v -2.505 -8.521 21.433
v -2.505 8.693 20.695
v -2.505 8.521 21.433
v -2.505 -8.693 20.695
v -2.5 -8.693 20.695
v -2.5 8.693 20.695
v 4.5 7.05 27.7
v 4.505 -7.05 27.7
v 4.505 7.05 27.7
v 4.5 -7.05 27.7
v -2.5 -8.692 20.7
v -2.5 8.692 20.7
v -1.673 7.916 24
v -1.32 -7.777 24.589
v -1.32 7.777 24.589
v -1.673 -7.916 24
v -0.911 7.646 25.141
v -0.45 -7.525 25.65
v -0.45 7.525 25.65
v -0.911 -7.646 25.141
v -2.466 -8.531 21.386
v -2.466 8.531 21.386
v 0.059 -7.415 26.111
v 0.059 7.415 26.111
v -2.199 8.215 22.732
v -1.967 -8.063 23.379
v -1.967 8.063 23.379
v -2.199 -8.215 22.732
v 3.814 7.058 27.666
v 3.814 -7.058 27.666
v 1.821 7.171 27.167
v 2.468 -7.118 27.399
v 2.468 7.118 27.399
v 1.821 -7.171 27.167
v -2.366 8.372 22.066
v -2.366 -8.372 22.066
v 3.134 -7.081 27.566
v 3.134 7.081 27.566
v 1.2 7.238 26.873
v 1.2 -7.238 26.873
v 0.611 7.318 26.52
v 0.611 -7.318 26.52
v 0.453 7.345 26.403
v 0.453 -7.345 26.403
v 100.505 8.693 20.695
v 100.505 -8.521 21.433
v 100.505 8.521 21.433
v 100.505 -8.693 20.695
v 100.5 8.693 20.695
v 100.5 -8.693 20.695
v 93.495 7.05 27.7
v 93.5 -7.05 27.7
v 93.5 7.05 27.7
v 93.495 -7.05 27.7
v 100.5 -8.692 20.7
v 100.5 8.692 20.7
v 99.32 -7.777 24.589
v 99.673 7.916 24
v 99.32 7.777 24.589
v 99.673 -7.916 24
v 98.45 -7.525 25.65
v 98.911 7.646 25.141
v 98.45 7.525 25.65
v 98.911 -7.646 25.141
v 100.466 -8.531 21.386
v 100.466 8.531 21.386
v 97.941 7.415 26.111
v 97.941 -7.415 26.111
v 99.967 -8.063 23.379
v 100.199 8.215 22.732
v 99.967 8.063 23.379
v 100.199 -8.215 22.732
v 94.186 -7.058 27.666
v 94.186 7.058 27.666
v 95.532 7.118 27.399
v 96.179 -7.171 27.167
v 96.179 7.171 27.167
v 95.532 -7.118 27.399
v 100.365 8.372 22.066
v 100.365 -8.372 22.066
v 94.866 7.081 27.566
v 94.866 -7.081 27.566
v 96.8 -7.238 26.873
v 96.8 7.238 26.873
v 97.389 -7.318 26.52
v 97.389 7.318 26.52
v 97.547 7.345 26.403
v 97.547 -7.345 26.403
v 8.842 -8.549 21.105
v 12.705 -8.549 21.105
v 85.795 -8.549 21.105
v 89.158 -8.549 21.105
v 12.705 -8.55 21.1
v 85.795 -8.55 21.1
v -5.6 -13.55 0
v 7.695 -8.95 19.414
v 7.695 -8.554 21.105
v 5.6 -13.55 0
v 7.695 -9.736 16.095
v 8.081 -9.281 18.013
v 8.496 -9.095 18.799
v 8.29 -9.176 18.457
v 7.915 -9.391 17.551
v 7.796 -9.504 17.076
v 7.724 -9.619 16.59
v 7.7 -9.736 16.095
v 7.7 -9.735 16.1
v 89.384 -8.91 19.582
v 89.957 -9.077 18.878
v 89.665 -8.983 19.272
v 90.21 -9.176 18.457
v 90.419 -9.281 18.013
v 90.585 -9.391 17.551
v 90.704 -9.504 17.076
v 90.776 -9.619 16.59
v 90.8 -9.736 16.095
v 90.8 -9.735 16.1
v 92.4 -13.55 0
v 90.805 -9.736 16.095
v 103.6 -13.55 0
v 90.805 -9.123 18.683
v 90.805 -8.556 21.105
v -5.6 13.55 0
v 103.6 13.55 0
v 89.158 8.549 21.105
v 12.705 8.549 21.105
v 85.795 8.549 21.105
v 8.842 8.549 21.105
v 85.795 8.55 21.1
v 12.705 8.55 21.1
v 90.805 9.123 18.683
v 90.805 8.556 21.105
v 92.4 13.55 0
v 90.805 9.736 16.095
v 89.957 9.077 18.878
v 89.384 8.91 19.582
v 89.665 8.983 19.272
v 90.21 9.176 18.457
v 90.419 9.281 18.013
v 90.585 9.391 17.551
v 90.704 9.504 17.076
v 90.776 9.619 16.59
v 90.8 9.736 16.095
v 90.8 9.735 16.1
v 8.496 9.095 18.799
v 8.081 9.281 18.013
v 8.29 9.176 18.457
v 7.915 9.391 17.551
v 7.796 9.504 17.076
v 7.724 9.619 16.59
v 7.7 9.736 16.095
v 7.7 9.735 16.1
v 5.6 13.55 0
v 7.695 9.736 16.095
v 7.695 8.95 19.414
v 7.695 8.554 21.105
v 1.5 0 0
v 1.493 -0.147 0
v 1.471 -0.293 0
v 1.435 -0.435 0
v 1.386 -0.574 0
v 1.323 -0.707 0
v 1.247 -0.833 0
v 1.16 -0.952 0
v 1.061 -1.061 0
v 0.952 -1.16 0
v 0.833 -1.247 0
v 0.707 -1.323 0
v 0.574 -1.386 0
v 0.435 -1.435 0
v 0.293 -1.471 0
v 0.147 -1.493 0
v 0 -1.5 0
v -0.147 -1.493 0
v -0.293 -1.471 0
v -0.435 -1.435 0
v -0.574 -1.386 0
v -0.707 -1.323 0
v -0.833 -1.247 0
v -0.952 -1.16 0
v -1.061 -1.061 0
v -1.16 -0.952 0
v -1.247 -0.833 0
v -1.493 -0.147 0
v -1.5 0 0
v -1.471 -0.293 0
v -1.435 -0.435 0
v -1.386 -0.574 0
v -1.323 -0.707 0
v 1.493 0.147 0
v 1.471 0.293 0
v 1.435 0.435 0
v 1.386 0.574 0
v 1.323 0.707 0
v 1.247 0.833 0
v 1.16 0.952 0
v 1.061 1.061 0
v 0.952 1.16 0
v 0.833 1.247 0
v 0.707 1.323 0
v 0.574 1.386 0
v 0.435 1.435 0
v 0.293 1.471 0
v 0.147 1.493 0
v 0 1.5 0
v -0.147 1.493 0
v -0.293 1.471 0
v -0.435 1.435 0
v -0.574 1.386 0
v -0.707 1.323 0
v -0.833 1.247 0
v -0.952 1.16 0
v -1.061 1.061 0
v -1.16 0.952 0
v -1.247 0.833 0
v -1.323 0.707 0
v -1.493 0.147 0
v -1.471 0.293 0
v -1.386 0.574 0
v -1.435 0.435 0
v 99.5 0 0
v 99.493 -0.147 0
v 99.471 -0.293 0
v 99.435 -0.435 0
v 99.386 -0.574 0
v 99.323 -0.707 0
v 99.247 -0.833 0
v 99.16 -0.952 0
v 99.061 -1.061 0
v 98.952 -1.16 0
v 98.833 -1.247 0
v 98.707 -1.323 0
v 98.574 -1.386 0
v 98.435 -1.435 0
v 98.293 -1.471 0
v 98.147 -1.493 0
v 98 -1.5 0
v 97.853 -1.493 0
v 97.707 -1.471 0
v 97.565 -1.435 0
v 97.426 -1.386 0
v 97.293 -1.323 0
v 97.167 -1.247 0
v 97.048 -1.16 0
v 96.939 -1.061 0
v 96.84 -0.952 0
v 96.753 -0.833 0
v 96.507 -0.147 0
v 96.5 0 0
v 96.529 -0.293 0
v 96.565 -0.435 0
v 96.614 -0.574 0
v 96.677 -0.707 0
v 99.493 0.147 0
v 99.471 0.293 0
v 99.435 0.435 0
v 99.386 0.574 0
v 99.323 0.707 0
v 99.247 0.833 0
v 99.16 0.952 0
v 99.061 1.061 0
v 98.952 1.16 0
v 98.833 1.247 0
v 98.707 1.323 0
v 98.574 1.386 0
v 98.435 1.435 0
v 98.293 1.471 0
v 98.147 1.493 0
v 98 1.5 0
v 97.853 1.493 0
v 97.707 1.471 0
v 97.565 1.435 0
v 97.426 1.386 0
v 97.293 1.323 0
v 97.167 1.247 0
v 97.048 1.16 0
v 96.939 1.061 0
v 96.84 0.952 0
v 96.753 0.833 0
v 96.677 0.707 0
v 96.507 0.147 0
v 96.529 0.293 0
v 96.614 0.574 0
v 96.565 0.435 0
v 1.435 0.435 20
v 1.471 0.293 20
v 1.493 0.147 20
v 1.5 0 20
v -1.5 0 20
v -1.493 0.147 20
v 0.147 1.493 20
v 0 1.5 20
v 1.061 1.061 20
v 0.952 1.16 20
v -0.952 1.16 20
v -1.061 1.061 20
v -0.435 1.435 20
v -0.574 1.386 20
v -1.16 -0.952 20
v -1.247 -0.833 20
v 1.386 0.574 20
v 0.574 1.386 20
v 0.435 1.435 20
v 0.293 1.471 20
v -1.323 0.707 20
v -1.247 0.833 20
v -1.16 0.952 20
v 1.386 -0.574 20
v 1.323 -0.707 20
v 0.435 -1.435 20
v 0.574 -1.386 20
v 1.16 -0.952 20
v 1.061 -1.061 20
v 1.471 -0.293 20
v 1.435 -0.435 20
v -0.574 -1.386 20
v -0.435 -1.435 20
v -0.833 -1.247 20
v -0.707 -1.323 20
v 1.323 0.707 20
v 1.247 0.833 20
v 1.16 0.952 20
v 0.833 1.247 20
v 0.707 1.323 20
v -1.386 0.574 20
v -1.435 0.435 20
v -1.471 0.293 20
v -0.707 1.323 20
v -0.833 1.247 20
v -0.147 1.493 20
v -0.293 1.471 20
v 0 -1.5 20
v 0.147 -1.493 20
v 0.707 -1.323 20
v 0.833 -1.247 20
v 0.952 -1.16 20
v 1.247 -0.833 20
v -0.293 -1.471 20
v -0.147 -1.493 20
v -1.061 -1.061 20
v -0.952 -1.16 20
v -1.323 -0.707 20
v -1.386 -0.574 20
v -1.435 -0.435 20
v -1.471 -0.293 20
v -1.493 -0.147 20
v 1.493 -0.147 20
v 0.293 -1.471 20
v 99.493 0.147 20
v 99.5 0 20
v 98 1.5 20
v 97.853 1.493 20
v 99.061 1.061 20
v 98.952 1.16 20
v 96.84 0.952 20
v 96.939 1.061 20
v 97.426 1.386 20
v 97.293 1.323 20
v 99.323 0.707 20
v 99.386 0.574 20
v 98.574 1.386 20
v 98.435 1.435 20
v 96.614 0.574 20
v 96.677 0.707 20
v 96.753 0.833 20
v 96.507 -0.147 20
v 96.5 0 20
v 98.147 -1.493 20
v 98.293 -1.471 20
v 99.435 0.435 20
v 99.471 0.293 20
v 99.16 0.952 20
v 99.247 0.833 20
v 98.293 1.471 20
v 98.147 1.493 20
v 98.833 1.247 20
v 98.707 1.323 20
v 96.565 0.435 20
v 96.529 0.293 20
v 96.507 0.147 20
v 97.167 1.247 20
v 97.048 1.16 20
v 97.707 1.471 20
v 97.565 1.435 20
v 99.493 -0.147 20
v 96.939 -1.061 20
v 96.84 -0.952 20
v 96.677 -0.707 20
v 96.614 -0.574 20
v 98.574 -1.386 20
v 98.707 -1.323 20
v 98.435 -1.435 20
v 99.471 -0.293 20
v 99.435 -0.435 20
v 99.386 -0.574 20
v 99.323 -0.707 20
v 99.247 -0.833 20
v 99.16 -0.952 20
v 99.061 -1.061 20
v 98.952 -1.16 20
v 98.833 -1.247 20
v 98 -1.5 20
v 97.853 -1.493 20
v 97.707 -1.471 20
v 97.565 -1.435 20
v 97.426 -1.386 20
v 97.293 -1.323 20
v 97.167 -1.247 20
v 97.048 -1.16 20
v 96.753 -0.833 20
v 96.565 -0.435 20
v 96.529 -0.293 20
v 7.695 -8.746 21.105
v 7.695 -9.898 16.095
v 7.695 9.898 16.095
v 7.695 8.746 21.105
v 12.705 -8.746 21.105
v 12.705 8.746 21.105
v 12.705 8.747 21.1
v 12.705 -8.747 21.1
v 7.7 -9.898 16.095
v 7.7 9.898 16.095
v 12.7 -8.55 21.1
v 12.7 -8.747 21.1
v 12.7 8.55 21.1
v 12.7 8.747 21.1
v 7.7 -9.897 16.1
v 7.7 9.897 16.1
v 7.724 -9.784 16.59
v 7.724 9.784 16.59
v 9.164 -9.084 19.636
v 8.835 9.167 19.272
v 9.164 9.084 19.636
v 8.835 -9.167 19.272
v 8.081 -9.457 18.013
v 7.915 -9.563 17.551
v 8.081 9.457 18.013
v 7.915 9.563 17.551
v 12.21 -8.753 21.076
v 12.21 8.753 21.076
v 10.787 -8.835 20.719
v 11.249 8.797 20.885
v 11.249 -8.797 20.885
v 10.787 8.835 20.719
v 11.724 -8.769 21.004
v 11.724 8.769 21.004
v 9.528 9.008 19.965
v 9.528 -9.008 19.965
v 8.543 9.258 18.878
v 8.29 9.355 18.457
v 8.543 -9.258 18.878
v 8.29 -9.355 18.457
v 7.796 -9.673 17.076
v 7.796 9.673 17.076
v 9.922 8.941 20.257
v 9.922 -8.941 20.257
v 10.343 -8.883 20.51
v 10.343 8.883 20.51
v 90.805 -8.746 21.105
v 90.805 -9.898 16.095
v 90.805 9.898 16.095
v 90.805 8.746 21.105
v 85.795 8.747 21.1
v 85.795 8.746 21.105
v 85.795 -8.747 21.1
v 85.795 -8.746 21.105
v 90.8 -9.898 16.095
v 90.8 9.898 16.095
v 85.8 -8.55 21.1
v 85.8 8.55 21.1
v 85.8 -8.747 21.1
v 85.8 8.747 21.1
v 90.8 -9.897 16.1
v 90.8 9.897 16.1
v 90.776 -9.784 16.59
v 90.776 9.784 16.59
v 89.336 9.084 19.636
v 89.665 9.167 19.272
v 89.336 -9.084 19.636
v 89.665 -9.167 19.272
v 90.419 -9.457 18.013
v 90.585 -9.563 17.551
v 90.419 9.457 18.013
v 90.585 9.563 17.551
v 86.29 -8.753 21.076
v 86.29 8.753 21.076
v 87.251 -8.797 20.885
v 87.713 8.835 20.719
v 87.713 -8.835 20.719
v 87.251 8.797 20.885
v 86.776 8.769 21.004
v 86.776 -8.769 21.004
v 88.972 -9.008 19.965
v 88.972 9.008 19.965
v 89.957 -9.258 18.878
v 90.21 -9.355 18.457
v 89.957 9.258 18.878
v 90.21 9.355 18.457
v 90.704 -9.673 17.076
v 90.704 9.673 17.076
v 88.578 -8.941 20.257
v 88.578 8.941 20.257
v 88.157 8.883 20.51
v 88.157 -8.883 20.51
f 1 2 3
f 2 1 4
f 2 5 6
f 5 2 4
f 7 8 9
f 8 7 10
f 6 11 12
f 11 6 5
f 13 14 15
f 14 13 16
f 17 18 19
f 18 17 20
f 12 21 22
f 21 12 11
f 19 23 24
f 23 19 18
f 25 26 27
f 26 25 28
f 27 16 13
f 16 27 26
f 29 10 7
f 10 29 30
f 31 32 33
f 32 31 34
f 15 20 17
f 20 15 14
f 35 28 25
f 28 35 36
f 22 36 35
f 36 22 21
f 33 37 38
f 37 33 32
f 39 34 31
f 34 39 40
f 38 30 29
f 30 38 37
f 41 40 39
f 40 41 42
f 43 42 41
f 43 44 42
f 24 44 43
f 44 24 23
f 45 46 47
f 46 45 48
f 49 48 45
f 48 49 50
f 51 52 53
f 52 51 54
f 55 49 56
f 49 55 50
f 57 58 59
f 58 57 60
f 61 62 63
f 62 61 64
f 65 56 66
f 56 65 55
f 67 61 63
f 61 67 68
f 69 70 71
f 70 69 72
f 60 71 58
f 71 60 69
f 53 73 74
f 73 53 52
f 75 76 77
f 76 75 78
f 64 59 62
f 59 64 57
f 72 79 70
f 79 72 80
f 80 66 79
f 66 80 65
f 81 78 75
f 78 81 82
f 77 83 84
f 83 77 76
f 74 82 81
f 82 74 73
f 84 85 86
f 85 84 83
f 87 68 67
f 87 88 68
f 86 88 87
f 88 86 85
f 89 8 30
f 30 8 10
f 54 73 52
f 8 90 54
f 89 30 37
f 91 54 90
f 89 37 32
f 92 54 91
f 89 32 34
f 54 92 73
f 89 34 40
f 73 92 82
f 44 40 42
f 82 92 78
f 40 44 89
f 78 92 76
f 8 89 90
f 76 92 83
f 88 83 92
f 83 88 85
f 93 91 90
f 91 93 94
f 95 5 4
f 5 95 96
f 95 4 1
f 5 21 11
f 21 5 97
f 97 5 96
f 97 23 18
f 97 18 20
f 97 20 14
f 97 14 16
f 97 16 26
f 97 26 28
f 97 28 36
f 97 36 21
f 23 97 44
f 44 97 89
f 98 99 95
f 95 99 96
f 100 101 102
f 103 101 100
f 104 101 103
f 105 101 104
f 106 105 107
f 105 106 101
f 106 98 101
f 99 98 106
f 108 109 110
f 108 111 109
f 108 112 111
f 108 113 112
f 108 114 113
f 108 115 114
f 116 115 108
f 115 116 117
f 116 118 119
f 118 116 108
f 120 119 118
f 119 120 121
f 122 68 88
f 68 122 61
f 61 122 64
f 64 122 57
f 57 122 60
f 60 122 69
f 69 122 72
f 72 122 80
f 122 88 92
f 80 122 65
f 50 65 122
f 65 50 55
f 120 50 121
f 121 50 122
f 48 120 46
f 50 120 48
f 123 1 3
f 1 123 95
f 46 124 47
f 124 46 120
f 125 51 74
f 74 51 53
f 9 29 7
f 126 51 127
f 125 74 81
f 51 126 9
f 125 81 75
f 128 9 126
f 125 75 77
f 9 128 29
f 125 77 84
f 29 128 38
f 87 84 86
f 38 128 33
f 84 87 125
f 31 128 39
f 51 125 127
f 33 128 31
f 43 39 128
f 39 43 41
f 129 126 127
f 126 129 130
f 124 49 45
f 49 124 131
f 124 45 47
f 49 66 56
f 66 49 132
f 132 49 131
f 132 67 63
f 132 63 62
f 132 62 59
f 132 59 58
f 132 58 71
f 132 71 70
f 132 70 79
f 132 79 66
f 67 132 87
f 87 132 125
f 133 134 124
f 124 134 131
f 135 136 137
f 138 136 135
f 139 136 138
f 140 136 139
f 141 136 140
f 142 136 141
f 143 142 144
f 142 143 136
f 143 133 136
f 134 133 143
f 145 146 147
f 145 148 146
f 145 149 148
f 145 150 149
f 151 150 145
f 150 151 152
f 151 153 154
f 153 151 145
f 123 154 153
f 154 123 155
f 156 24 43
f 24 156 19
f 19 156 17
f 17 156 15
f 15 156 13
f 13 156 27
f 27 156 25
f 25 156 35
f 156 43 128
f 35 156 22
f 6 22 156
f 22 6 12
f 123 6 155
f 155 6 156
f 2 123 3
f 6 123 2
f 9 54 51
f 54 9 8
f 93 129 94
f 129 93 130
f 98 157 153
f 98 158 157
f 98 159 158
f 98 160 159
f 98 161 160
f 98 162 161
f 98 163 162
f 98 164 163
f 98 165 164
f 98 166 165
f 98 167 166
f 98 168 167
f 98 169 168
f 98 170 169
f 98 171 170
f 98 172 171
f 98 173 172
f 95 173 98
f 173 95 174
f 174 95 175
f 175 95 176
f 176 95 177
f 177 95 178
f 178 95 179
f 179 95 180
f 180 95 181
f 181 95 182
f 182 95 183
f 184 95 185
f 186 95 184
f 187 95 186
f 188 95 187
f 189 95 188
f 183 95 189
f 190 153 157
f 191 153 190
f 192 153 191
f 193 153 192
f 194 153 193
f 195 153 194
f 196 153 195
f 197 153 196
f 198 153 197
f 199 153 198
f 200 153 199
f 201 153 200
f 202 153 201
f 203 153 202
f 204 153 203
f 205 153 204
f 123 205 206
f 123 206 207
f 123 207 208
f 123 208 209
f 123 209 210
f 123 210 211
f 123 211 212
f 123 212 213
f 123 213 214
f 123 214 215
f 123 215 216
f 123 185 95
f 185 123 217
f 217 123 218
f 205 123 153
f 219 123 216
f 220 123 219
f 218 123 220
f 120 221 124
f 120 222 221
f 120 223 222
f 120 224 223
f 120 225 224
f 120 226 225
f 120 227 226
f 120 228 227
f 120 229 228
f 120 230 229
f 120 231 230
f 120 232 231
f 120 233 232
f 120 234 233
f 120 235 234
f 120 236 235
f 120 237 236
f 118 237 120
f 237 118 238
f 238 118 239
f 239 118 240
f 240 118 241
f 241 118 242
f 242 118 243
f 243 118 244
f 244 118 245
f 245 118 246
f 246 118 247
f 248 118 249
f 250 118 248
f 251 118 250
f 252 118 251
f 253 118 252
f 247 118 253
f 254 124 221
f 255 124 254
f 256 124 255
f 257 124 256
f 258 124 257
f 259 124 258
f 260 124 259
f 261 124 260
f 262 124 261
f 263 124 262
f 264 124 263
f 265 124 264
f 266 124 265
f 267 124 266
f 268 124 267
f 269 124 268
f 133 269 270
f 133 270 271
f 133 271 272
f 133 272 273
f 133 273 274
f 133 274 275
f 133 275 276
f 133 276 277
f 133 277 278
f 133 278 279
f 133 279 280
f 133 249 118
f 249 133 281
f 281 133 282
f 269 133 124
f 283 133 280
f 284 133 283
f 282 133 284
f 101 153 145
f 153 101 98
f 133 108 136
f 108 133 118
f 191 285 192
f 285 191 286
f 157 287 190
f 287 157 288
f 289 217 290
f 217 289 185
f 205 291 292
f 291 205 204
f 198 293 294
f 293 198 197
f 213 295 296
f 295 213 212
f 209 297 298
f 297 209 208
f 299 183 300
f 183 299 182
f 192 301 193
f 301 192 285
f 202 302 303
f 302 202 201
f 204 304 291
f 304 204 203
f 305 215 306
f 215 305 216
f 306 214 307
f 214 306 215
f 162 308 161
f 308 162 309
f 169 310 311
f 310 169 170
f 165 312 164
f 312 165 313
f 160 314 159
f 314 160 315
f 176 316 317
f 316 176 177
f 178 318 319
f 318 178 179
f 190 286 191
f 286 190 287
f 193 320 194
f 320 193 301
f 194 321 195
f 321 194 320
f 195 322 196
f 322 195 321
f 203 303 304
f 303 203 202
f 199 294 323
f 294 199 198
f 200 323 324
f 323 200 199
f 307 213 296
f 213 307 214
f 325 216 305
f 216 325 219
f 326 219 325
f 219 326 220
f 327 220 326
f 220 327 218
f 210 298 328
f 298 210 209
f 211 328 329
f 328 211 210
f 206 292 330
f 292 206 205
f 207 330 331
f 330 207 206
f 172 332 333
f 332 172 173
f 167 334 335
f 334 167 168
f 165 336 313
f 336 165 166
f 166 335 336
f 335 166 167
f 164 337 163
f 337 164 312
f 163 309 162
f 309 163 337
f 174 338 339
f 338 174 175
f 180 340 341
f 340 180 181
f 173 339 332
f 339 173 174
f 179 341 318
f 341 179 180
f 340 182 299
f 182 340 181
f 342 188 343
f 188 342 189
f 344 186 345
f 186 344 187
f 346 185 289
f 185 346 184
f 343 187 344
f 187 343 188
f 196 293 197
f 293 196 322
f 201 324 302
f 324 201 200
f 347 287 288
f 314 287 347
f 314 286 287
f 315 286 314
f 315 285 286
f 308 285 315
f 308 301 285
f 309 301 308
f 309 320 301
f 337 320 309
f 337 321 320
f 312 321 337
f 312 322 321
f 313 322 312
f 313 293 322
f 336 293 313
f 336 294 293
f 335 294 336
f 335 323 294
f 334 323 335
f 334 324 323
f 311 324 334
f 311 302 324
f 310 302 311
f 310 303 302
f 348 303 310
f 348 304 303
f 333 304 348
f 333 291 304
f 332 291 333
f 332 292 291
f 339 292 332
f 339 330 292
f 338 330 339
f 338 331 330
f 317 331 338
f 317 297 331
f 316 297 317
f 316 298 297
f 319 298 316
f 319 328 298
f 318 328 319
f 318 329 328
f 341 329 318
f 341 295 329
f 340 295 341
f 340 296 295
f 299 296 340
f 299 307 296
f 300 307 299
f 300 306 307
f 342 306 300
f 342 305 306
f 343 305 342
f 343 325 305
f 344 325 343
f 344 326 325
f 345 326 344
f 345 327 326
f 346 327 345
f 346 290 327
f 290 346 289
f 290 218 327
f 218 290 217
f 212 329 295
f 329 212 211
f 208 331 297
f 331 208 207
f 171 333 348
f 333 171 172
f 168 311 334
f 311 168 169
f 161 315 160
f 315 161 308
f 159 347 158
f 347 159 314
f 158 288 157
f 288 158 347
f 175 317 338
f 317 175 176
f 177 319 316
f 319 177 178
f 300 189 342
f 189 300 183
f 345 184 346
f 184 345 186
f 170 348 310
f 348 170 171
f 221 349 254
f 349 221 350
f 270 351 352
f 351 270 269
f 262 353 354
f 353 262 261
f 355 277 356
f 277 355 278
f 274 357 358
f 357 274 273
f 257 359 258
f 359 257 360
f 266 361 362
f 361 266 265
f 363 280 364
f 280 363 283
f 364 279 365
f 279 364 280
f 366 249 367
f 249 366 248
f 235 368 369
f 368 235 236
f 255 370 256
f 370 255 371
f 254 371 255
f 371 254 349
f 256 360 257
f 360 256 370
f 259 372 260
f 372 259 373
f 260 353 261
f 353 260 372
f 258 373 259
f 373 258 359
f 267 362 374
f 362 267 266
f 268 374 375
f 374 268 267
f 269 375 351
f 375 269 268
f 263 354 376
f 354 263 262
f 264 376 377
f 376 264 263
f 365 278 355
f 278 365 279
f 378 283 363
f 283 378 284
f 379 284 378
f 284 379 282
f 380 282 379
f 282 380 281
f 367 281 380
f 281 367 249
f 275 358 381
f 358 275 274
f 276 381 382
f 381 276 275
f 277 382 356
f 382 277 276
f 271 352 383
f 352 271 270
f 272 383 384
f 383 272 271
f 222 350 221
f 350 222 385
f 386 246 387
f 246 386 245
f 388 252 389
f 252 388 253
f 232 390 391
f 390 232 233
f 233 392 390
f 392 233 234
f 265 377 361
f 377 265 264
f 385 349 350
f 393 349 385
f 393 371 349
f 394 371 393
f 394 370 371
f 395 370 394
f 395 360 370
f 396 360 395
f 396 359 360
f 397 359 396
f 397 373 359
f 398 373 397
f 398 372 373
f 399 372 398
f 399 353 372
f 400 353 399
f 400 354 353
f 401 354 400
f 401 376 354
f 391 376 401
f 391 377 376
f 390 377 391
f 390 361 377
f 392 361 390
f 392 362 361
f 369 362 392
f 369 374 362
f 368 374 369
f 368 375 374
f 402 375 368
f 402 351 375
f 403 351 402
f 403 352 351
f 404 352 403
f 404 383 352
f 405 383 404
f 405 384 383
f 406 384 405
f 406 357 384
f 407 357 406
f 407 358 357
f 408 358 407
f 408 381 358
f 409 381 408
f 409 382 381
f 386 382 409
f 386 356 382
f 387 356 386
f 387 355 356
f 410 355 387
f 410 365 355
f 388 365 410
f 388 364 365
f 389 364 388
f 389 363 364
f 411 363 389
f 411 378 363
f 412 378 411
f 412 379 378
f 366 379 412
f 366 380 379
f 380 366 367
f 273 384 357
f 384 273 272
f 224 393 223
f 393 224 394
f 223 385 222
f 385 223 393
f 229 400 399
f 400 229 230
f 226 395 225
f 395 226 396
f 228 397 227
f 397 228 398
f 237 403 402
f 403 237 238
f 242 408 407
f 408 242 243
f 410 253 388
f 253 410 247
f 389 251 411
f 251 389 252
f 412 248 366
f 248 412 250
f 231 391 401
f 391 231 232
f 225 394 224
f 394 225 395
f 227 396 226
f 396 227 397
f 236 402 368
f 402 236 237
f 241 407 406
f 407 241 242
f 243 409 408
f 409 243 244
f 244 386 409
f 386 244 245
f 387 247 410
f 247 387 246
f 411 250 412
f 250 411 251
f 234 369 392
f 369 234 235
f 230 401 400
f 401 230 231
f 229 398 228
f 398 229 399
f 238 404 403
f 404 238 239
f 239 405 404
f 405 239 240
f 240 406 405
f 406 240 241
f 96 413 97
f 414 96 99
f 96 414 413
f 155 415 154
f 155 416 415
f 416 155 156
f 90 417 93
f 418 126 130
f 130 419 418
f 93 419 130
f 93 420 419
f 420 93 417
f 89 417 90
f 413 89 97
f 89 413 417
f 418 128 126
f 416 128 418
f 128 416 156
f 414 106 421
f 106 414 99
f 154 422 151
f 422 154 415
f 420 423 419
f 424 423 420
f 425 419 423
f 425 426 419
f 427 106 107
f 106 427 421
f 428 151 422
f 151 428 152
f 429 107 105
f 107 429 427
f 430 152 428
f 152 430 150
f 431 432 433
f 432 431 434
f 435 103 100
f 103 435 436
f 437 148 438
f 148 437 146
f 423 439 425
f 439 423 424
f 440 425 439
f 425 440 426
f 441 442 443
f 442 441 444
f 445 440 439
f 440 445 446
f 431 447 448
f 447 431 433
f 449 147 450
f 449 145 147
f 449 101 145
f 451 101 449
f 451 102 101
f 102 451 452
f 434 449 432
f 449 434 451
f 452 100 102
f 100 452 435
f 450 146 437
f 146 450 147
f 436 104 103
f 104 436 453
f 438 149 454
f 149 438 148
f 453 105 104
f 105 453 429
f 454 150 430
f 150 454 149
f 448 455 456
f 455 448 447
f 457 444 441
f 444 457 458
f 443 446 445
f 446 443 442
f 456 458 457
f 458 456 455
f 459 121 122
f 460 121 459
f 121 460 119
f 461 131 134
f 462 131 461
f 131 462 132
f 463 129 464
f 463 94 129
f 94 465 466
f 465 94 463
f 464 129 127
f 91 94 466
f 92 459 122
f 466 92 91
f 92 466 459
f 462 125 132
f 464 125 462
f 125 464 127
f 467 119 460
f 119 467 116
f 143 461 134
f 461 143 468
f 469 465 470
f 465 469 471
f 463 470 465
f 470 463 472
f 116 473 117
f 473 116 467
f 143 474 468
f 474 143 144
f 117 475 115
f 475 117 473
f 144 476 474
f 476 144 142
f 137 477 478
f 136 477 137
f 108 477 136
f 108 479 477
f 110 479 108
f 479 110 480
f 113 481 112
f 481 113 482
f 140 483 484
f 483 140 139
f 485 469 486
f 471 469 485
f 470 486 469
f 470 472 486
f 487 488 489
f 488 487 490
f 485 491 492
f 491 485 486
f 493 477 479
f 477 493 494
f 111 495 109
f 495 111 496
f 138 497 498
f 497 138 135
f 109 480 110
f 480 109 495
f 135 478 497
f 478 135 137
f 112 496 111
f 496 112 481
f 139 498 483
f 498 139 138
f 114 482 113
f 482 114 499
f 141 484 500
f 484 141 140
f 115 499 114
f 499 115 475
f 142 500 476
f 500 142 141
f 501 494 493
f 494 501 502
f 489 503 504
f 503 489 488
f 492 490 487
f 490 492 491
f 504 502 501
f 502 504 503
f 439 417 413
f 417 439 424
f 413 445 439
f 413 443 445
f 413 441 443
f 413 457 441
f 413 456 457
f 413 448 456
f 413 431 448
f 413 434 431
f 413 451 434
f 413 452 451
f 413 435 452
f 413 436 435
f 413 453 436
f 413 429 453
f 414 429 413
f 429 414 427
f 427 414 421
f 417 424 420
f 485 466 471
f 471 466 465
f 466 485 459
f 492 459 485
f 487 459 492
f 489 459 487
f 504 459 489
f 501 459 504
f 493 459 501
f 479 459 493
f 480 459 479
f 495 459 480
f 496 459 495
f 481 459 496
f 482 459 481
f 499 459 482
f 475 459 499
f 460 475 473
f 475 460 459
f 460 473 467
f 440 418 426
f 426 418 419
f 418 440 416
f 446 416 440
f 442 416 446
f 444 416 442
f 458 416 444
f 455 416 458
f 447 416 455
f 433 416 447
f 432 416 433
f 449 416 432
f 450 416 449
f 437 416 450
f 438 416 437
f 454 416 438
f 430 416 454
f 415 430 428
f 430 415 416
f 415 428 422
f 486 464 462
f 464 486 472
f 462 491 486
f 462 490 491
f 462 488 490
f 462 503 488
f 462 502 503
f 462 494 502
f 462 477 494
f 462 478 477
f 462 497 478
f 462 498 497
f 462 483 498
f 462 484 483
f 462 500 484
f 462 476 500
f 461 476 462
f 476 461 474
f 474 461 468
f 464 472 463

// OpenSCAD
/*

Carrying handle for a number of Heathkit test equipment products.
Typically grey or black. Some units have the word Heathkit on top, so
this can optionally be included. Attaches with two #10 self-tapping
screws approximately 0.5" long. For strength, you probably want to use
100% infill.
 
    FRONT
                             V
    +-------------------------------+ ^
    |  +-------------------------+  | |
   >|w3|<                    ^   |  | h1
    |  |                    h2   |  | |
    +--+                         +--+ V
    <w2>
      <---------- w1 ------------->
      ^
      +- origin

    TOP

    +--------------------------------+ ^
    |                                | d1
    +--------------------------------+ V

    SIDE

     <d1>
     +--+
     |  |
    |    |
    +----+
    <-d2->

*/

// Function count - increase to improve object resolution
$fn=64;

// Dimensions: in mm, can be adjusted to create different handles.

w1=98.0; // Distance between screw holes.
w2=11.2;
w3=9.7;

h1=27.7;
h2=6.6;

d1=14.1;
d2=27.1;

// Slope of handle.
slope=4.0;

// Radius of upper curved corner.
r1=7.0;

// Radius of inner curved corner.
r2=5.0;

// Adjustment to make sides planar.
fudge=1.5;

// Screw hole diameter.
hole_dia=3.0;

// Screw hole depth.
hole_depth=20.0;

// Below won't make much sense without the sketch I made on a piece of
// paper.
HandlePoints = [
  [w1-w2/2, d2/2, 0], // 0
  [w1+w2/2, d2/2, 0], // 1
  [w1-w2/2, -d2/2, 0], // 2
  [w1+w2/2, -d2/2, 0], // 3
  [-w2/2, d2/2, 0], // 4
  [w2/2, d2/2, 0], // 5
  [-w2/2, -d2/2, 0], // 6
  [w2/2, -d2/2, 0], // 7
  [-w2/2+slope, d1/2, h1], // 8
  [w1+w2/2-slope, d1/2, h1], // 9
  [-w2/2+slope, -d1/2, h1], // 10
  [w1+w2/2-slope, -d1/2, h1], // 11
  [w3/2+slope, d1/2+fudge, h1-h2], // 12
  [w1-w3/2-slope, d1/2+fudge, h1-h2], // 13
  [w3/2+slope, -d1/2-fudge, h1-h2], // 14
  [w1-w3/2-slope, -d1/2-fudge, h1-h2], // 15
];

HandleFaces = [
  [6,10,11,3,2,15,14,7], // Front
  [8,10,6,4],            // Left
  [11,9,1,3],            // Right
  [9,8,4,5,12,13,0,1],   // Back
  [8,9,11,10],           // Top
  [14,15,13,12],         // Bottom of top
  [6,7,5,4],             // Bottom left
  [2,3,1,0],             // Bottom Right
  [14,12,5,7],           // Inside left
  [13,15,2,0],           // Inside right
];

// From  http://forum.openscad.org/rounded-corners-td3843.html
// I use this module. I either union it to an inside corner or
// difference it from an outside one.

module fillet(r, h) {

    translate([r/2, r/2, 0])
    difference() {
        cube([r + 0.01, r + 0.01, h], center = true);
        translate([r/2, r/2, 0])
            cylinder(r = r, h = h + 1, center = true);
    }
}

// Matrices used for sloped sides.

M1 = [ [ 1, 0, 0, 0 ],
       [ 0, 1, 0.23, 0 ],
       [ 0, 0, 1, 0 ],
       [ 0, 0, 0, 1 ]
];

M2 = [ [ 1, 0, 0, 0 ],
       [ 0, 1, -0.23, 0 ],
       [ 0, 0, 1, 0 ],
       [ 0, 0, 0, 1 ]
];


difference() {

  {

  union() {

  difference() {

    polyhedron(HandlePoints, HandleFaces);

    // Remove screw holes.
    {
        translate([0,0,0]) cylinder(d=hole_dia, h=hole_depth);
        translate([w1,0,0]) cylinder(d=hole_dia, h=hole_depth);
    }

    // Round corners at top.
    translate([-2.5, 0, h1]) rotate([270, 0, 0]) fillet(r1, d2);
    translate([w1+2.5, 0, h1]) rotate([90, 180, 0]) fillet(r1, d2);

}

// Round inside corners.
translate([w3-2, 0, h1-h2]) rotate([270, 0, 0]) fillet(r2, d2);
translate([w1-w2+4, 0, h1-h2]) rotate([90, 180, 0]) fillet(r2, d2);

}

{
union()
translate([5,-23.6,0]) { multmatrix(M1) {cube([100,10,30]); } }
translate([5,13.6,0]) { multmatrix(M2) {cube([100,10,30]); } }
}
}
}

// Text on top of handle. Comment out if not desired.
//translate([w1/2, 0, h1]) linear_extrude(1) {
//    text(text="H E A T H K I T", size=4, halign="center", valign="center");
//}
